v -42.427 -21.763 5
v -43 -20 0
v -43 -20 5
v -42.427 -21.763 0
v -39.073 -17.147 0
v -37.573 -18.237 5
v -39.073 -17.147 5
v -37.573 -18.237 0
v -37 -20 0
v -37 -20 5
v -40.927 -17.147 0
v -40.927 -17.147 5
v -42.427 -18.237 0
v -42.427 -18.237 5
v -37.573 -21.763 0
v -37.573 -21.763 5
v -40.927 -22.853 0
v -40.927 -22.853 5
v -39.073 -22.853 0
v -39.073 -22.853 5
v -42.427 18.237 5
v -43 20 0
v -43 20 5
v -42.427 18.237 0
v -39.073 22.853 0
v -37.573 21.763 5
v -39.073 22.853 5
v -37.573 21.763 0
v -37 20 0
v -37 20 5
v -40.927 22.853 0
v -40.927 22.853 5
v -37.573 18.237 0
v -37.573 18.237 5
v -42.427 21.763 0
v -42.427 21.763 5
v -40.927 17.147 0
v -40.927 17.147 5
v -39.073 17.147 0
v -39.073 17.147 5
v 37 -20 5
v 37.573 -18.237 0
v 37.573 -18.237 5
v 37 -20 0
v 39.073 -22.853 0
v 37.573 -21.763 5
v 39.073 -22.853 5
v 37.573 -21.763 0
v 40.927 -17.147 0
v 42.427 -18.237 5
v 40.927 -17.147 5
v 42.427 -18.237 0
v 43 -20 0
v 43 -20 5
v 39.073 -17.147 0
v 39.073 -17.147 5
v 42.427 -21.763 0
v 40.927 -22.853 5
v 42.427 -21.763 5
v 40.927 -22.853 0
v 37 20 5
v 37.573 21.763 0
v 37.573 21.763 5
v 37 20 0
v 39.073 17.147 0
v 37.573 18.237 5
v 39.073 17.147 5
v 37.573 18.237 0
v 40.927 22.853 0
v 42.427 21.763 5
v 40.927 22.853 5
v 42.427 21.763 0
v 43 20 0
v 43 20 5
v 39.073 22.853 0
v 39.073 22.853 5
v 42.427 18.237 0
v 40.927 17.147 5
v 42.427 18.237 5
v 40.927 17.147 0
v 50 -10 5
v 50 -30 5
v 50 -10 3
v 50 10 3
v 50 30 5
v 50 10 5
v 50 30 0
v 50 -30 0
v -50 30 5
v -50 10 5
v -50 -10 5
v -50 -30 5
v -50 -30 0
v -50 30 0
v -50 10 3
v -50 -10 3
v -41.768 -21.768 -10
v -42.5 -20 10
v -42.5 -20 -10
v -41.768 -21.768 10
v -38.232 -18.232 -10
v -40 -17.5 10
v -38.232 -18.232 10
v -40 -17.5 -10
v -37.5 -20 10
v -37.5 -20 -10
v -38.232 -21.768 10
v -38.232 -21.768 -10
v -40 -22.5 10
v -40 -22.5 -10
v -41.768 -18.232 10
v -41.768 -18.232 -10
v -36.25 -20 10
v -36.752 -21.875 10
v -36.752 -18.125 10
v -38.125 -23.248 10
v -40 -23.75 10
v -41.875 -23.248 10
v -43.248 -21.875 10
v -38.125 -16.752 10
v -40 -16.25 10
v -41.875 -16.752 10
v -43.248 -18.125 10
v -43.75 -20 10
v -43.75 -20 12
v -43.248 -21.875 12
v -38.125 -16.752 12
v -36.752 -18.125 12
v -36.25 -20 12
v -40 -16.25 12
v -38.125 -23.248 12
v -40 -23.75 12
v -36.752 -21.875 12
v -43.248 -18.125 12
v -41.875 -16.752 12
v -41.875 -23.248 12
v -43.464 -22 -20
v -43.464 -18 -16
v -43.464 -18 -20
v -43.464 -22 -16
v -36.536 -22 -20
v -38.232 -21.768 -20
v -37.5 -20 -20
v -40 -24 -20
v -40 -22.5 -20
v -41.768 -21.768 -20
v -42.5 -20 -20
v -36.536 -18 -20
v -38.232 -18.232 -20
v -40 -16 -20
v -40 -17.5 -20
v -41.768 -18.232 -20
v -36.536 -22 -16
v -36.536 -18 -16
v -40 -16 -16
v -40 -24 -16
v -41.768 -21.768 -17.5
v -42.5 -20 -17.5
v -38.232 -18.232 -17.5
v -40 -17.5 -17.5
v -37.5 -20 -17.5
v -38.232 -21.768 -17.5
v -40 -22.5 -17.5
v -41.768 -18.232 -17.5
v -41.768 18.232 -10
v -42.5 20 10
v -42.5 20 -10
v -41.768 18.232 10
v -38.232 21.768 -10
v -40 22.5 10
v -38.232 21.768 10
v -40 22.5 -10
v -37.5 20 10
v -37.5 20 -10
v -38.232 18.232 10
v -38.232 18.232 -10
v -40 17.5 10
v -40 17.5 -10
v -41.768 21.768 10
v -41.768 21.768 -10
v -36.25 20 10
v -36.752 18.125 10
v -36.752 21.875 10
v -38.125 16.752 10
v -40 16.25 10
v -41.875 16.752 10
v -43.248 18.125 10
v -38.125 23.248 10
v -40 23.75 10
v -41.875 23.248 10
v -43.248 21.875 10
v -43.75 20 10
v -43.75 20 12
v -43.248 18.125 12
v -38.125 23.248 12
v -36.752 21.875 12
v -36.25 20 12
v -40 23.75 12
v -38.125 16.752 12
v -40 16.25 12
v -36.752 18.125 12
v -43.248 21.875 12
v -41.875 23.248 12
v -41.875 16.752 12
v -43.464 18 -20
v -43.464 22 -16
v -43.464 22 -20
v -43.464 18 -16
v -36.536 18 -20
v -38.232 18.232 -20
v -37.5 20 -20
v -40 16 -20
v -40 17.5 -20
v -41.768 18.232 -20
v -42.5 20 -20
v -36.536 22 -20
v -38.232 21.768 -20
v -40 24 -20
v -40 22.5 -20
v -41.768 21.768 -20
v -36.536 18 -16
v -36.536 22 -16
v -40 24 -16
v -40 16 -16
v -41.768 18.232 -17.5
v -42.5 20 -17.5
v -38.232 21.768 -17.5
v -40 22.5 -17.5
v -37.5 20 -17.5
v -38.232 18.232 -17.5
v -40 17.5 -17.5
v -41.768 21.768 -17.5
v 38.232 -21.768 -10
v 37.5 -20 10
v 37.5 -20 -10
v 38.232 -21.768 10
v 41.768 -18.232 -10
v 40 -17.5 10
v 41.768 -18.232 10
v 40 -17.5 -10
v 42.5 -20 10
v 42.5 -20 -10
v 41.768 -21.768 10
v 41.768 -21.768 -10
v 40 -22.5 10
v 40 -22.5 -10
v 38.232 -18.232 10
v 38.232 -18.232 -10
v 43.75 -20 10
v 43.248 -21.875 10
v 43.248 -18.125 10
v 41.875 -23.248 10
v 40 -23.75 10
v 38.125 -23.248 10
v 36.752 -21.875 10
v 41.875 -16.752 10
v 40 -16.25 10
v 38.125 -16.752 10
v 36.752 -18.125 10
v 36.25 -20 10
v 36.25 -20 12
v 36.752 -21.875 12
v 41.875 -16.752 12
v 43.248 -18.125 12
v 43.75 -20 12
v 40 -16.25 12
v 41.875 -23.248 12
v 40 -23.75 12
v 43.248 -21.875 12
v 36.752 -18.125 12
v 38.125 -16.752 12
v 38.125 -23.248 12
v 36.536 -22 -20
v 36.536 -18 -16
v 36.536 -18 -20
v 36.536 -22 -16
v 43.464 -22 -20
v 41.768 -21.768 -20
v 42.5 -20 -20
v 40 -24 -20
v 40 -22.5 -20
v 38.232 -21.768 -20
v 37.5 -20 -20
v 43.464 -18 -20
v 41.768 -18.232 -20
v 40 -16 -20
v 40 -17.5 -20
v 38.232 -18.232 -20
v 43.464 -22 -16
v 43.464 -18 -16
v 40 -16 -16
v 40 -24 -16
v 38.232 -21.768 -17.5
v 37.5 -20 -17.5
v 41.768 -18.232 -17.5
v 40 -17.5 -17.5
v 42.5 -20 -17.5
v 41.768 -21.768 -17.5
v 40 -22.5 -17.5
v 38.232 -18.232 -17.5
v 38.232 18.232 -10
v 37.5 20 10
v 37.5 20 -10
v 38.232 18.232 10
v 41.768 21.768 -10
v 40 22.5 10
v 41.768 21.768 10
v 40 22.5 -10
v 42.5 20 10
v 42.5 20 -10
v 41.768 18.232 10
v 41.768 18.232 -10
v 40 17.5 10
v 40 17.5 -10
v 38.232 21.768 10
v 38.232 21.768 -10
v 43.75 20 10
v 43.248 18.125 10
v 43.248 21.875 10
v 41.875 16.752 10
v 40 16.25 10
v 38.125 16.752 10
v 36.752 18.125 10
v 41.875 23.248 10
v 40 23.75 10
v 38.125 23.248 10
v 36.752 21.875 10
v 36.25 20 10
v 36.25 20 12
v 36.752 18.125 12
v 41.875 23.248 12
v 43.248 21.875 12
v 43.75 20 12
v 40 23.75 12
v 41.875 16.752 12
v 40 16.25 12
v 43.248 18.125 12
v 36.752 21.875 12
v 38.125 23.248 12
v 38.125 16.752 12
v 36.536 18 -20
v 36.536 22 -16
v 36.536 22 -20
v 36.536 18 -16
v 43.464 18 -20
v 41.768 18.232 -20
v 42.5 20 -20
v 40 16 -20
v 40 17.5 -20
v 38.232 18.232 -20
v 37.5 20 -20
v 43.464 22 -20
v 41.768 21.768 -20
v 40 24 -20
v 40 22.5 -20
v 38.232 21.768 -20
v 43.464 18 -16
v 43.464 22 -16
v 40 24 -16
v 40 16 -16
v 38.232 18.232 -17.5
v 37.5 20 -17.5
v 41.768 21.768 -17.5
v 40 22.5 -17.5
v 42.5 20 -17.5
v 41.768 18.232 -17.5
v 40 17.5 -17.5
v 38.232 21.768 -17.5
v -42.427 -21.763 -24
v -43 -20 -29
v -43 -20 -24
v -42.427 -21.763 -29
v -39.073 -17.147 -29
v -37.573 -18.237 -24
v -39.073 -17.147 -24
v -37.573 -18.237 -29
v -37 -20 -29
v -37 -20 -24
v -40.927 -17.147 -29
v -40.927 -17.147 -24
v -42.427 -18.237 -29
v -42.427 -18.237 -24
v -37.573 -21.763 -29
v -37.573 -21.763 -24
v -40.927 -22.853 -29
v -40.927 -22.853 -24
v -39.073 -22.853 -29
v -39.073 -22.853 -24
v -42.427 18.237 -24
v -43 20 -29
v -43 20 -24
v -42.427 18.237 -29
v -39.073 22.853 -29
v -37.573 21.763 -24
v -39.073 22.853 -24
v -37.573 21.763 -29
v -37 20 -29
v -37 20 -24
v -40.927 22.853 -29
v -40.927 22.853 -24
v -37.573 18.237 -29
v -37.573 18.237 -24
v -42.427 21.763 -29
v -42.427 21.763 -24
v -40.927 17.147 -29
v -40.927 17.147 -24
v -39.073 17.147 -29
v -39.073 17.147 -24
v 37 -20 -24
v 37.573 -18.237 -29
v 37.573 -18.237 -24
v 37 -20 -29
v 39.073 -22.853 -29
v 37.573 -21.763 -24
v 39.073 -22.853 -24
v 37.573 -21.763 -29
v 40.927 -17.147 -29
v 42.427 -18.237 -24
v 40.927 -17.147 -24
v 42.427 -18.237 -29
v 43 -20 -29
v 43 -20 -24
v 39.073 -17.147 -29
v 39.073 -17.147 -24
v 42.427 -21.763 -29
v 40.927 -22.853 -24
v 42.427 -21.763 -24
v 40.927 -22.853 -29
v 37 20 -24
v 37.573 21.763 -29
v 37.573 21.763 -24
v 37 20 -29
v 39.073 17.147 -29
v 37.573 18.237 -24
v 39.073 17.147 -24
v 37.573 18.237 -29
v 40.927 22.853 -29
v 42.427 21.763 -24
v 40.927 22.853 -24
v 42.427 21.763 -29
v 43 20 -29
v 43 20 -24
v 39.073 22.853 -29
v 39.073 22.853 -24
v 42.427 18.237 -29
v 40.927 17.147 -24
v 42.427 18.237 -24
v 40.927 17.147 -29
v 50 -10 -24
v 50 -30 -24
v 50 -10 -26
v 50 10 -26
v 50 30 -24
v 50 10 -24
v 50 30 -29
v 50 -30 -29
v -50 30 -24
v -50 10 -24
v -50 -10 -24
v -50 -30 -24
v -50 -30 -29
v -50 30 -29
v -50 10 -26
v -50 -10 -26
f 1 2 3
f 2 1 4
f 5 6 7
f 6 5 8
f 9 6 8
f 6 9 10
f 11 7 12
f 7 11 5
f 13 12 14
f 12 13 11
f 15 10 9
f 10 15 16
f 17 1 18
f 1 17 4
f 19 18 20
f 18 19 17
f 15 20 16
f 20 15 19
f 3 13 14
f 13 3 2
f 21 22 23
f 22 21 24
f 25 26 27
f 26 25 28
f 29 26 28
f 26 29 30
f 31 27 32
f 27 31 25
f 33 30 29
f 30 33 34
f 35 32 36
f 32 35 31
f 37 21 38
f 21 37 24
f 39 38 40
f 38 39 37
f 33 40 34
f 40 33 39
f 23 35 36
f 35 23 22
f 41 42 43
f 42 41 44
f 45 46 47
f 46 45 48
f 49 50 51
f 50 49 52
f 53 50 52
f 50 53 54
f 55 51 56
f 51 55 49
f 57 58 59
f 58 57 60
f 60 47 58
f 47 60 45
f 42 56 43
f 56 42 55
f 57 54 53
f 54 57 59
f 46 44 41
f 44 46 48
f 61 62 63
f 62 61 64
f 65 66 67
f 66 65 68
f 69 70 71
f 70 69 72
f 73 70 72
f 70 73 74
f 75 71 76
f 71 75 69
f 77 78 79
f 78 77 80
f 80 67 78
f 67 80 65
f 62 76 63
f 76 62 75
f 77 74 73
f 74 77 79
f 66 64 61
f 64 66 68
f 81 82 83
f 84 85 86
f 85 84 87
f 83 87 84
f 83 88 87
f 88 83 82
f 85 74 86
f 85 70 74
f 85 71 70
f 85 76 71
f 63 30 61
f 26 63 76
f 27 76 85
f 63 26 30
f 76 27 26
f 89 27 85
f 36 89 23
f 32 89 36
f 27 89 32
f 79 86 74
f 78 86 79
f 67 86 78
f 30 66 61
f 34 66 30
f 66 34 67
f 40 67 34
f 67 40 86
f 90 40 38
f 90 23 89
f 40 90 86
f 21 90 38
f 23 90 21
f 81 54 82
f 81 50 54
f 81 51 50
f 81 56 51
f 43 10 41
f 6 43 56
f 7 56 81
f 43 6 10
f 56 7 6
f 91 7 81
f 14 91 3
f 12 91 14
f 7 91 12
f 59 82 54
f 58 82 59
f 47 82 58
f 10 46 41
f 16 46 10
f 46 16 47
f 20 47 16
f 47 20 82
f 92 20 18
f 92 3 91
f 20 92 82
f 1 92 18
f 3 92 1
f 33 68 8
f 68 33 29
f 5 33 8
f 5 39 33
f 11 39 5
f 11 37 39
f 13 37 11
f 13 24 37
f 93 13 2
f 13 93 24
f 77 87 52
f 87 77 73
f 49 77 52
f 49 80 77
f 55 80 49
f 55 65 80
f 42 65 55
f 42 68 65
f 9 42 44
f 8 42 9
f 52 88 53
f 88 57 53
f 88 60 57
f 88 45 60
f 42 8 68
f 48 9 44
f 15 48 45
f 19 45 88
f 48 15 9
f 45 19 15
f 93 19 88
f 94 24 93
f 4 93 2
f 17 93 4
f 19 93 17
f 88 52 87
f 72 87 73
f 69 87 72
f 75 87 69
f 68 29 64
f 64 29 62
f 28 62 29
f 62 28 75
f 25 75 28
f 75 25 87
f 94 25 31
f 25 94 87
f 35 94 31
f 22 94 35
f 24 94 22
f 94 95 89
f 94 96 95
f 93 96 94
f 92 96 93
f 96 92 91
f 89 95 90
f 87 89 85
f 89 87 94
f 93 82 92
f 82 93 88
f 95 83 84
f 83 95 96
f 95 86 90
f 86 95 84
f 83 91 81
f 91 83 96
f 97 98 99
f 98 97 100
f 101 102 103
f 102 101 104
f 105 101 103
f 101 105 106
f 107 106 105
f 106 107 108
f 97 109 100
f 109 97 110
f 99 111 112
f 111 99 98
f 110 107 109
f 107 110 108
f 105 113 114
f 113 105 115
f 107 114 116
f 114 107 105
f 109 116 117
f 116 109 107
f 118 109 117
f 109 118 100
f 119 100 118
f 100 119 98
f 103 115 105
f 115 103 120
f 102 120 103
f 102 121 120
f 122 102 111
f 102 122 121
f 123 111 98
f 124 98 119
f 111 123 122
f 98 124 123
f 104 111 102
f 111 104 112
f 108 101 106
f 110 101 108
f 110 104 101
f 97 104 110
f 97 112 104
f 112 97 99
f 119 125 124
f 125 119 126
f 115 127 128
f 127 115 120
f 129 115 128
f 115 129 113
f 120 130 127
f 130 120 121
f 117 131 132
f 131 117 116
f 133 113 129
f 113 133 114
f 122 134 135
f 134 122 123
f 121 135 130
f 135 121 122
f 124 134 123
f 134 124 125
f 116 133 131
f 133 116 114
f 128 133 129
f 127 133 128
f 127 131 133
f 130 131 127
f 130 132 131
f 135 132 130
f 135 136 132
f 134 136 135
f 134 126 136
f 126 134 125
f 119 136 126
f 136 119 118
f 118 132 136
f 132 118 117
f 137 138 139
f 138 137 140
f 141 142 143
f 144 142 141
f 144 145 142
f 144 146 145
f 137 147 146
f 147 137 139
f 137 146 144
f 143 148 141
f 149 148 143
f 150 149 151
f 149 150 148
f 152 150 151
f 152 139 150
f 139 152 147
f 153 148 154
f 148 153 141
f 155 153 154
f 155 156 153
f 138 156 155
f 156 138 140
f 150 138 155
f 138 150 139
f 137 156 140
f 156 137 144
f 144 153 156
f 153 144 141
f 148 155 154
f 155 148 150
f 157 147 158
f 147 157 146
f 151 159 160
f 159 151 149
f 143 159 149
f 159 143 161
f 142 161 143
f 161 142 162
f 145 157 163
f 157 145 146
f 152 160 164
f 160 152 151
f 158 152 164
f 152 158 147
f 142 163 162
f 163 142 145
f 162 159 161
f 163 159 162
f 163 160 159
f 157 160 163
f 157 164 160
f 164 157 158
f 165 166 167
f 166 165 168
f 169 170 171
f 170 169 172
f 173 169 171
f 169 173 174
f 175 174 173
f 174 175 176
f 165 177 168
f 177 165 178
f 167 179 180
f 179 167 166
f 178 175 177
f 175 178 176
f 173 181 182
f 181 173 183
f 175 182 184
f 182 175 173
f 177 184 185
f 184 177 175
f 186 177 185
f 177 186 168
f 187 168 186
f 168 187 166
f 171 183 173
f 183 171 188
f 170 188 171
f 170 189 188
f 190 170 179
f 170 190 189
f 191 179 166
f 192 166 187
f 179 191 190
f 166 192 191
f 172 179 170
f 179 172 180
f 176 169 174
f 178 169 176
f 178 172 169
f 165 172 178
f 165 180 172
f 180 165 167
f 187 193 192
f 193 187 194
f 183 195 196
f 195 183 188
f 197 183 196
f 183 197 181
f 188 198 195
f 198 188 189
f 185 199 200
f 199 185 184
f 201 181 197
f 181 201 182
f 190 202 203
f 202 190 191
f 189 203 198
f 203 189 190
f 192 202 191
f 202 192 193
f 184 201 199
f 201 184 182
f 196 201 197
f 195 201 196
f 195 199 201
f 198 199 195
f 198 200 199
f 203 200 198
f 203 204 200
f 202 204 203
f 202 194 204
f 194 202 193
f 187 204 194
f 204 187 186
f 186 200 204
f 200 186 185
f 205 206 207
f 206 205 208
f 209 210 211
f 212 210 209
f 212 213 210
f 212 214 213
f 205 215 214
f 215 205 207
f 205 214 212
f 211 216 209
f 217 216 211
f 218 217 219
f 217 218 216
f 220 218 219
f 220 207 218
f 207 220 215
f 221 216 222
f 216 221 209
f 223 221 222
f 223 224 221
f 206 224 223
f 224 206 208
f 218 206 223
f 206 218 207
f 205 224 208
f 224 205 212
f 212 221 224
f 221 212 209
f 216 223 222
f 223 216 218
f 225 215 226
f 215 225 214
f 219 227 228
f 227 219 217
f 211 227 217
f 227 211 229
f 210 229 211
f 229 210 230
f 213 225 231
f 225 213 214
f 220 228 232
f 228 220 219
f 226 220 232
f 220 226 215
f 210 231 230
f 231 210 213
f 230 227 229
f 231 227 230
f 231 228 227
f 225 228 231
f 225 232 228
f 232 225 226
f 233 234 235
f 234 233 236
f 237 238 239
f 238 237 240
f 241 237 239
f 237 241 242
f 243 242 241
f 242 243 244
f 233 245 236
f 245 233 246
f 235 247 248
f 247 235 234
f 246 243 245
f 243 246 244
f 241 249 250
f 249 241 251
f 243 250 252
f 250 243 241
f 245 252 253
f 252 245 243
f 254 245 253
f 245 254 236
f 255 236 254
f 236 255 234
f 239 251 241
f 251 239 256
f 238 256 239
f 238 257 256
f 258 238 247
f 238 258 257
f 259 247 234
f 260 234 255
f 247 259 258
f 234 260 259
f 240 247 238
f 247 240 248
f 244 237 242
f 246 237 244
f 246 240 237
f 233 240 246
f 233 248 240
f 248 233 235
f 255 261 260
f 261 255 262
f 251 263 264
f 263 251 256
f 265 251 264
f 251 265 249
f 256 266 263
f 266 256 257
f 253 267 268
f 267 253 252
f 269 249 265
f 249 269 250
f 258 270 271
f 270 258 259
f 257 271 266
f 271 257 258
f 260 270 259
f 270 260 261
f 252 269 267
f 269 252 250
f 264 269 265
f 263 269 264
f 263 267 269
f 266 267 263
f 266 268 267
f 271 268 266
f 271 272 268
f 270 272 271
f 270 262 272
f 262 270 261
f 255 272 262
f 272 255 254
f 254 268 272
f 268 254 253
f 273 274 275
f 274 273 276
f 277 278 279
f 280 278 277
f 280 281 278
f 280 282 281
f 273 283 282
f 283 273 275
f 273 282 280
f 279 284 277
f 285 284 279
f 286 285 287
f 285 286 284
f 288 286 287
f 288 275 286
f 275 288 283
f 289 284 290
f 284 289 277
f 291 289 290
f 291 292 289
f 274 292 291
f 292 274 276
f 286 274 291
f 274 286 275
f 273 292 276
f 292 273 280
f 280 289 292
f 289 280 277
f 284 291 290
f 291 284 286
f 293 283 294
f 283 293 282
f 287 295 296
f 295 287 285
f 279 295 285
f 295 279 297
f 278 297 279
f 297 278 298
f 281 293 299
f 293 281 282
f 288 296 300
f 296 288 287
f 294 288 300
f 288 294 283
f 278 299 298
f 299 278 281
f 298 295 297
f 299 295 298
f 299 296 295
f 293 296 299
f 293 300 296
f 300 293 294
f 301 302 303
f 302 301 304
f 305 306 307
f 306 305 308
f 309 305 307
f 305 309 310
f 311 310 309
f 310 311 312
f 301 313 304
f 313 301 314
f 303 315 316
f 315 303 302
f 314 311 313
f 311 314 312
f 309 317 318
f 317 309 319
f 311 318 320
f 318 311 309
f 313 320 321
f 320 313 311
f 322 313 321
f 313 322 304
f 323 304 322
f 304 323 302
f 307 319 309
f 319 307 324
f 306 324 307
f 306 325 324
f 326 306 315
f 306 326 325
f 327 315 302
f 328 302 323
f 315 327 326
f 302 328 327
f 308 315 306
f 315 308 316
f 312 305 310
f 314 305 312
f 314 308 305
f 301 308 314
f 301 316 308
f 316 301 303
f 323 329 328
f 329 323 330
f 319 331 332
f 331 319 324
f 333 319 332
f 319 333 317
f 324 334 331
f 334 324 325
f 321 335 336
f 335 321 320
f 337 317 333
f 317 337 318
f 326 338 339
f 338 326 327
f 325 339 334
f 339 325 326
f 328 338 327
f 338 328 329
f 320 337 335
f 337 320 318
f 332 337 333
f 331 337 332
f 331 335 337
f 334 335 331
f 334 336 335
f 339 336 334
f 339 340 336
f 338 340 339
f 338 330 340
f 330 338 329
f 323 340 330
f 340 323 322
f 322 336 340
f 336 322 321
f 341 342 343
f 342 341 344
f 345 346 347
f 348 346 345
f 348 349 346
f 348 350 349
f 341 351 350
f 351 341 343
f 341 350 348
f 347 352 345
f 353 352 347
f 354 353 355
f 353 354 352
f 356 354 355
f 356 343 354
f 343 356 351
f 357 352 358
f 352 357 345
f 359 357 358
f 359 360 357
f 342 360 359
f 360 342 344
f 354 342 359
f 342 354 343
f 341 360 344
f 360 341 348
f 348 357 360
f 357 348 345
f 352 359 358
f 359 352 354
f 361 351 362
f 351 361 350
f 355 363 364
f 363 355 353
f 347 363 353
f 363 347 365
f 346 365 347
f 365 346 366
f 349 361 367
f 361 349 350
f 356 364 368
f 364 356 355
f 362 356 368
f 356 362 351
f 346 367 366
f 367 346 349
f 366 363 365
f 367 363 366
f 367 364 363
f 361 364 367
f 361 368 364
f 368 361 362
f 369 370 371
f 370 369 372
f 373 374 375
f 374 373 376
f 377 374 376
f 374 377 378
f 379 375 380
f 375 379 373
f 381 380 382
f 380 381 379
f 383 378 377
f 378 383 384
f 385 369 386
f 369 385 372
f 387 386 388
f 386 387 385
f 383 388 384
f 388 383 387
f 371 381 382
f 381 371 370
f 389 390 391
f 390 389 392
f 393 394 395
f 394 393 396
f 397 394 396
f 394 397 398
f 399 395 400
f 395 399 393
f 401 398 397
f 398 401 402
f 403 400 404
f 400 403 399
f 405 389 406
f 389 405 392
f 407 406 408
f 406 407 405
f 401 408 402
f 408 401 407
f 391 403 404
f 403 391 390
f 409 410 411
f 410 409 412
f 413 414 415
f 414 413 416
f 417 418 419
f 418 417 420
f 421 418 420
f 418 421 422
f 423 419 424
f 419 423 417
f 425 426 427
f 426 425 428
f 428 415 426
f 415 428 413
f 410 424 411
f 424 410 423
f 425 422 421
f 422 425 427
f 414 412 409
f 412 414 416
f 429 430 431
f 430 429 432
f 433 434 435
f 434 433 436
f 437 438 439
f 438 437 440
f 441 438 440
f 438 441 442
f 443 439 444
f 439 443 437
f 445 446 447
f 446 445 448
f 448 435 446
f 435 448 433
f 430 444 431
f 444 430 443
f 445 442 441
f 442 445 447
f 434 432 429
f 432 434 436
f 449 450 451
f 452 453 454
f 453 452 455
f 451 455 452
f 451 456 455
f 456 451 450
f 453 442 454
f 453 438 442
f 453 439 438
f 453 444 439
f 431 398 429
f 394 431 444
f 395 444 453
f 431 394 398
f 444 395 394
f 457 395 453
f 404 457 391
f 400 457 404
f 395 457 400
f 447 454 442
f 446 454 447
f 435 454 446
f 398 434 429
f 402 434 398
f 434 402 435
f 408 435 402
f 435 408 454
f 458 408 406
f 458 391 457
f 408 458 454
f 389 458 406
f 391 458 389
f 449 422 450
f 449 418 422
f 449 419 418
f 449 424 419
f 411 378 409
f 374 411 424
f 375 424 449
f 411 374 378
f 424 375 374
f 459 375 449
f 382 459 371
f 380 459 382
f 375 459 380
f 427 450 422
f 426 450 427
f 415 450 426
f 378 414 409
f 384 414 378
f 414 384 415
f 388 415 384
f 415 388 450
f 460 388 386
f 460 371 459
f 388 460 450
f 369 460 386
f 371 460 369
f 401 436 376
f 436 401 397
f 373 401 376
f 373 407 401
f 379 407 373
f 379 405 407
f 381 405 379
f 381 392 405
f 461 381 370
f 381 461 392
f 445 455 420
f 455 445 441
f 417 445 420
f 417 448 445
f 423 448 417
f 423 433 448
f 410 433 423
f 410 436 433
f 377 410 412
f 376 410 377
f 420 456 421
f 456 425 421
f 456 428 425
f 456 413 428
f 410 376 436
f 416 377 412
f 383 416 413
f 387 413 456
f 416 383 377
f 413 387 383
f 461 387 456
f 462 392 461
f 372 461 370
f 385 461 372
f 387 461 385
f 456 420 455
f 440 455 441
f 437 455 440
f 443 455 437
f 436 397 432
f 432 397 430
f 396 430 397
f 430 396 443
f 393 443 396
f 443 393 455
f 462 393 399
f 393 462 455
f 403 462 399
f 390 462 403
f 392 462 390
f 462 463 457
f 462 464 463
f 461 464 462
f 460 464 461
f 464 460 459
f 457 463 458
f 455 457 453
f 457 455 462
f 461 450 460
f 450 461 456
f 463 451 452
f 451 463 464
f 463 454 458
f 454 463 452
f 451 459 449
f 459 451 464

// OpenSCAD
// Parameters
plate_length = 100; // Length of the base plate
plate_width = 60;   // Width of the base plate
plate_thickness = 5; // Thickness of the base plate
hole_diameter = 6;  // Diameter of the circular holes
hole_offset = 10;   // Distance of the holes from the edges
groove_width = 20;  // Width of the central groove
groove_depth = 2;   // Depth of the central groove
bolt_diameter = 5;  // Diameter of the bolt
bolt_length = 20;   // Length of the bolt
nut_size = 8;       // Width across flats of the nut
nut_thickness = 4;  // Thickness of the nut

// Base plate module
module base_plate() {
    difference() {
        // Main plate
        cube([plate_length, plate_width, plate_thickness], center = true);
        
        // Circular holes
        for (x = [-plate_length/2 + hole_offset, plate_length/2 - hole_offset])
            for (y = [-plate_width/2 + hole_offset, plate_width/2 - hole_offset])
                translate([x, y, 0])
                    cylinder(h = plate_thickness + 1, d = hole_diameter, center = true);
        
        // Central groove
        translate([0, 0, plate_thickness/2 - groove_depth/2])
            cube([plate_length, groove_width, groove_depth], center = true);
    }
}

// Bolt module
module bolt() {
    union() {
        // Bolt shaft
        cylinder(h = bolt_length, d = bolt_diameter, center = false);
        
        // Bolt head
        translate([0, 0, bolt_length])
            cylinder(h = 2, d = bolt_diameter * 1.5, center = false);
    }
}

// Nut module
module nut() {
    difference() {
        // Hexagonal prism
        translate([0, 0, nut_thickness/2])
            rotate([0, 0, 30])
                linear_extrude(height = nut_thickness)
                    polygon(points = [[-nut_size/2, 0], [-nut_size/4, nut_size * sqrt(3)/4], [nut_size/4, nut_size * sqrt(3)/4], [nut_size/2, 0], [nut_size/4, -nut_size * sqrt(3)/4], [-nut_size/4, -nut_size * sqrt(3)/4]]);
        
        // Threaded hole
        translate([0, 0, nut_thickness/2])
            cylinder(h = nut_thickness + 1, d = bolt_diameter, center = true);
    }
}

// Assembly
module assembly() {
    // Layer 1: Top base plate
    translate([0, 0, plate_thickness/2])
        base_plate();
    
    // Layer 2: Bolts and nuts
    for (x = [-plate_length/2 + hole_offset, plate_length/2 - hole_offset])
        for (y = [-plate_width/2 + hole_offset, plate_width/2 - hole_offset]) {
            // Bolts
            translate([x, y, -bolt_length/2])
                bolt();
            
            // Nuts
            translate([x, y, -bolt_length - nut_thickness/2])
                nut();
        }
    
    // Layer 3: Bottom base plate
    translate([0, 0, -plate_thickness/2 - bolt_length - nut_thickness])
        base_plate();
}

// Render the assembly
assembly();
